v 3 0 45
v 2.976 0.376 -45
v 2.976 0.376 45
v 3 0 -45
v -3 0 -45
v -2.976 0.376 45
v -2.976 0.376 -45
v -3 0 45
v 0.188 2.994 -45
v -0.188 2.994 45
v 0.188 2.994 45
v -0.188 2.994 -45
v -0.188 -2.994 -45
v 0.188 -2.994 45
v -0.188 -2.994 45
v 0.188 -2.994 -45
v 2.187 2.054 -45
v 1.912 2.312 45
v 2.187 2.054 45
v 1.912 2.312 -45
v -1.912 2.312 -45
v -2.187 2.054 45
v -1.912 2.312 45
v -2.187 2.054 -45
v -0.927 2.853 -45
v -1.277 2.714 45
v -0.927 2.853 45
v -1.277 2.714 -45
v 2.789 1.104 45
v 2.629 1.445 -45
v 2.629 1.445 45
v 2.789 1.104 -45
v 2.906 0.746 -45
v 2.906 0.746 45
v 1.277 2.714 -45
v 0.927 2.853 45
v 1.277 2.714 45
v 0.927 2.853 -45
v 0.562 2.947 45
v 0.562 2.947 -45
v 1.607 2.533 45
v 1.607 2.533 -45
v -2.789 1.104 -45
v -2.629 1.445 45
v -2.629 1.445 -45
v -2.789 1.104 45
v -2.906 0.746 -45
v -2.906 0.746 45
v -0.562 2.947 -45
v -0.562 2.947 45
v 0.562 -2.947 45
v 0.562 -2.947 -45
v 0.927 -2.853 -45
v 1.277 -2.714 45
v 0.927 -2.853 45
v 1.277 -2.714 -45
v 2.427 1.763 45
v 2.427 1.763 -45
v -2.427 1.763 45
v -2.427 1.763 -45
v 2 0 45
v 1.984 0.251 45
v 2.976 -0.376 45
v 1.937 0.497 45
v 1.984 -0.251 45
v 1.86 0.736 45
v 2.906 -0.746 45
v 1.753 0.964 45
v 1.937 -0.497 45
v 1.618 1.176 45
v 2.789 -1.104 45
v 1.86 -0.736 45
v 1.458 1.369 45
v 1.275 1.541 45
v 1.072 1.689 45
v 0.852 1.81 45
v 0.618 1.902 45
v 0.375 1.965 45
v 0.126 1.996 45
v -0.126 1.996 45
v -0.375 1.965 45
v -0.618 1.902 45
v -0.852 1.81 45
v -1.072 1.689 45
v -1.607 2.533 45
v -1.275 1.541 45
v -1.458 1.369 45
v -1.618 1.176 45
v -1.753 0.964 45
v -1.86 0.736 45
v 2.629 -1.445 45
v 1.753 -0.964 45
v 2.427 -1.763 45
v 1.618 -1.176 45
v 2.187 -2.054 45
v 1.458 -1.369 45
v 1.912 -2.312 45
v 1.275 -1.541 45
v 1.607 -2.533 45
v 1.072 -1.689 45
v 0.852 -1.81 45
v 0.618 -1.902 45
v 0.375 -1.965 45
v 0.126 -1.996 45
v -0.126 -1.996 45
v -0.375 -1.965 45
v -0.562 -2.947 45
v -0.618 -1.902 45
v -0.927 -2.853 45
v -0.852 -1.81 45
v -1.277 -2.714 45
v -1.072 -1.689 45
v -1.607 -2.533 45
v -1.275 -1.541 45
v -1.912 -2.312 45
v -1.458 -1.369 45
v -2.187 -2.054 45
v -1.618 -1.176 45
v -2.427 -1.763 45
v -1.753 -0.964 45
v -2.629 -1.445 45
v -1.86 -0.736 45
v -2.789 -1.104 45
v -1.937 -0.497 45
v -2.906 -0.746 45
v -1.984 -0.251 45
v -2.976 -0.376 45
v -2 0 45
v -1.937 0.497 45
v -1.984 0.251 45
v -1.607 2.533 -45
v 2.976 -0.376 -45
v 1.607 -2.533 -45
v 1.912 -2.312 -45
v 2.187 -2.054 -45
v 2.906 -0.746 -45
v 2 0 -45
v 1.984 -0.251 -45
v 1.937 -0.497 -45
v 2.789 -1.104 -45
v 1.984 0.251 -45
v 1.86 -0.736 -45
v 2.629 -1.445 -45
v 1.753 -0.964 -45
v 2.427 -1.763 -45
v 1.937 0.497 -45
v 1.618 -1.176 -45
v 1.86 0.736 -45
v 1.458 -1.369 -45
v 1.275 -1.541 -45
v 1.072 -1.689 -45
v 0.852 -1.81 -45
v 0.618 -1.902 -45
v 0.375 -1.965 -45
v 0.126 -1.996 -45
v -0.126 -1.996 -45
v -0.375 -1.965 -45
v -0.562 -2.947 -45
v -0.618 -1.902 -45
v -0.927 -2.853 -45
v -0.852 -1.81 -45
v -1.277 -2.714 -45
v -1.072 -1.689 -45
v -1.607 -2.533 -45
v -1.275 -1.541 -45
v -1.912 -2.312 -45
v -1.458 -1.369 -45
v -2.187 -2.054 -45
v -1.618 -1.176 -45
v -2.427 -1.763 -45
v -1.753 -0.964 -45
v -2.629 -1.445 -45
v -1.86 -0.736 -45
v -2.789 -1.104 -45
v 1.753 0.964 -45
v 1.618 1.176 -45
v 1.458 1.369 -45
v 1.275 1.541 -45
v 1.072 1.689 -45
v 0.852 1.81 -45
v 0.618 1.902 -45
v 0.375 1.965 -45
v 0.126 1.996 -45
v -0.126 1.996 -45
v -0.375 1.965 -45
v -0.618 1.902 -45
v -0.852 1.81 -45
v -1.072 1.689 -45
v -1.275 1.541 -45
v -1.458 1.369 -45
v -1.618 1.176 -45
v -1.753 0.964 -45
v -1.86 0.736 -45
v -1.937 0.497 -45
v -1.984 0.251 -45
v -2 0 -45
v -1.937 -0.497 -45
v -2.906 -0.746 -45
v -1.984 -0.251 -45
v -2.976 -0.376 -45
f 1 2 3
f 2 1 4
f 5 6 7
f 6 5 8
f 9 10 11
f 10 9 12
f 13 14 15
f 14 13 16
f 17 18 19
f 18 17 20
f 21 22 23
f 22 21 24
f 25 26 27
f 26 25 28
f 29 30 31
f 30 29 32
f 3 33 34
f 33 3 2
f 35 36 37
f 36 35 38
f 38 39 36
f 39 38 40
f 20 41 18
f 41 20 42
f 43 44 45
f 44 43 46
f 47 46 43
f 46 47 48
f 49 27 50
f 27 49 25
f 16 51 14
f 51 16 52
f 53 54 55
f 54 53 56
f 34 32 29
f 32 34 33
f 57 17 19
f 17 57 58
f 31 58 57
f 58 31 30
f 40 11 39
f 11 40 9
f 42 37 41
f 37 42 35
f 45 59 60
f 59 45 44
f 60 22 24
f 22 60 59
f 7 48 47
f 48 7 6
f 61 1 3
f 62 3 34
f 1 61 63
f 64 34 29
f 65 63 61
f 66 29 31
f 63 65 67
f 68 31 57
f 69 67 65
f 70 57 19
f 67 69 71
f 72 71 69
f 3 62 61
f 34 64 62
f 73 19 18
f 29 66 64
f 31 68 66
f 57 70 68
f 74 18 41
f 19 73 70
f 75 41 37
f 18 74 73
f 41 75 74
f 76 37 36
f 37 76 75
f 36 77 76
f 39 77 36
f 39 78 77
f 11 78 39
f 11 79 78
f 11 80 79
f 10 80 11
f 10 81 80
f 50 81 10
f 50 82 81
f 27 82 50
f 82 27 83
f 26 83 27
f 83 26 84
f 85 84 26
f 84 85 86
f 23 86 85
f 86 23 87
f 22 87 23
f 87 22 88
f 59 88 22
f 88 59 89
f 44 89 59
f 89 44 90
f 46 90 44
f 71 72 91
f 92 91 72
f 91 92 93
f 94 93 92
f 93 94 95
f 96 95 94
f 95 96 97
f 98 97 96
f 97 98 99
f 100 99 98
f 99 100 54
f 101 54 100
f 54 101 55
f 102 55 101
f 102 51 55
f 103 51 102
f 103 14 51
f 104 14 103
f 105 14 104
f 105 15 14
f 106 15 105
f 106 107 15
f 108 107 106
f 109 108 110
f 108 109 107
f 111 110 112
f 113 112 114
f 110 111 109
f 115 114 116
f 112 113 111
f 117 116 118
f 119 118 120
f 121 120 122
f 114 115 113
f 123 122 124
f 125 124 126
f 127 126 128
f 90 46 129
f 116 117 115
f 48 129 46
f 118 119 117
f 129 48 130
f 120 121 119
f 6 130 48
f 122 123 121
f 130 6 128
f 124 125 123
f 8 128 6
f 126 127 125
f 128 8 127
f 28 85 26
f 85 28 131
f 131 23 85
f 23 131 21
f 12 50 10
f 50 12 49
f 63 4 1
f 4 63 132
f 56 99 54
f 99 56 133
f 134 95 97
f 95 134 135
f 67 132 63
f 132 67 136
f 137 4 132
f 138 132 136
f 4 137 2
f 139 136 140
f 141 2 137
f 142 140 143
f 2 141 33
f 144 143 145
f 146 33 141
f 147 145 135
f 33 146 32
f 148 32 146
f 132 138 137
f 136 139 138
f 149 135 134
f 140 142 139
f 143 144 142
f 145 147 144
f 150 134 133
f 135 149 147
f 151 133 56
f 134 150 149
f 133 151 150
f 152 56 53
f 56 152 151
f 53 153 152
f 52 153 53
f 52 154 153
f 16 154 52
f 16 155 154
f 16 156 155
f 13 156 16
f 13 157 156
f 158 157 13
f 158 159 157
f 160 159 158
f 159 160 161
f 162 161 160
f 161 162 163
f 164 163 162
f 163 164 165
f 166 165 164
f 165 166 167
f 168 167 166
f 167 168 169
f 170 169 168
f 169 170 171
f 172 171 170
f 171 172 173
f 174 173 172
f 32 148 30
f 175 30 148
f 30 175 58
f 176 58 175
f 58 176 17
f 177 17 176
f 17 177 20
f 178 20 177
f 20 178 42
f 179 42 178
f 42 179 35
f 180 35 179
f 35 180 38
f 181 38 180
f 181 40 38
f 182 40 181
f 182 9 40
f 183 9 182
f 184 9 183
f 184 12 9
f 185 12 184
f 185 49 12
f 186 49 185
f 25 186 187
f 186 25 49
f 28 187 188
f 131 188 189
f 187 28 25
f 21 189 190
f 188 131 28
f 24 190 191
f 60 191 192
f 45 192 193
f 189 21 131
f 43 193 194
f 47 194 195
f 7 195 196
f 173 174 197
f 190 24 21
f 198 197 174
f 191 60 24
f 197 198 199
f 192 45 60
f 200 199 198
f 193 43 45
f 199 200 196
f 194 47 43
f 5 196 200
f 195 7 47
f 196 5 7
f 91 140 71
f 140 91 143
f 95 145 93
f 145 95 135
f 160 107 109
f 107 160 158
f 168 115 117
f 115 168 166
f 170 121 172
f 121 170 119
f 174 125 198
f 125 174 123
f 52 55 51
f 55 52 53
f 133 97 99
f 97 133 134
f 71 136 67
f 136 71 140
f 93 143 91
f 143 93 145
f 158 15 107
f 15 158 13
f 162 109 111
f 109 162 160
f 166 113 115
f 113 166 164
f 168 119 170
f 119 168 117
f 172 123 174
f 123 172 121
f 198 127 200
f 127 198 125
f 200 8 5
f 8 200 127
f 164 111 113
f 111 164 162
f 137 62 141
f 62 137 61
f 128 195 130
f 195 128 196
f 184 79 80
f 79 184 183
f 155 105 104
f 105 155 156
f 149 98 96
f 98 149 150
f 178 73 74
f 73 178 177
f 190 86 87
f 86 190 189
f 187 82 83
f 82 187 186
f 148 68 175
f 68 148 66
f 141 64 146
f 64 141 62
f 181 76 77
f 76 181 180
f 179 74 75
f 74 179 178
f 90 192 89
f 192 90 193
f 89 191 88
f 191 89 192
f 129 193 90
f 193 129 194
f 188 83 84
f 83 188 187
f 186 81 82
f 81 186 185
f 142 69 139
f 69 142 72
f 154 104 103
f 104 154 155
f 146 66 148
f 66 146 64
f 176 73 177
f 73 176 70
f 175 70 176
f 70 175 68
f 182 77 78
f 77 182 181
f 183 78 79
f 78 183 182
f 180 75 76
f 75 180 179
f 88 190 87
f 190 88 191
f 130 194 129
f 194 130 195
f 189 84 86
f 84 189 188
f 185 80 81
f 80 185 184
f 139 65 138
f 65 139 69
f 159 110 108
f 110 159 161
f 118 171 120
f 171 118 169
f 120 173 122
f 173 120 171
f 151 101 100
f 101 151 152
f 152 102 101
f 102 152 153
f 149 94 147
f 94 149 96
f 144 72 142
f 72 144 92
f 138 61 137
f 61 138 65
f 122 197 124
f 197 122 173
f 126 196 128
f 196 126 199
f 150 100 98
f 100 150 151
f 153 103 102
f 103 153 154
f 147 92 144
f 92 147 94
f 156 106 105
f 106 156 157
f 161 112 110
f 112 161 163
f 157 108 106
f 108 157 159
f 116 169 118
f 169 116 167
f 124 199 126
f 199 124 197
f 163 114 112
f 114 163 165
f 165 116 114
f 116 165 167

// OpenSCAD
$fn = 50;


difference() {
	union() {
		translate(v = [0, 0, -45.0000000000]) {
			cylinder(h = 90, r = 3.0000000000);
		}
	}
	union() {
		translate(v = [0, 0, -100.0000000000]) {
			cylinder(h = 200, r = 2);
		}
	}
}
